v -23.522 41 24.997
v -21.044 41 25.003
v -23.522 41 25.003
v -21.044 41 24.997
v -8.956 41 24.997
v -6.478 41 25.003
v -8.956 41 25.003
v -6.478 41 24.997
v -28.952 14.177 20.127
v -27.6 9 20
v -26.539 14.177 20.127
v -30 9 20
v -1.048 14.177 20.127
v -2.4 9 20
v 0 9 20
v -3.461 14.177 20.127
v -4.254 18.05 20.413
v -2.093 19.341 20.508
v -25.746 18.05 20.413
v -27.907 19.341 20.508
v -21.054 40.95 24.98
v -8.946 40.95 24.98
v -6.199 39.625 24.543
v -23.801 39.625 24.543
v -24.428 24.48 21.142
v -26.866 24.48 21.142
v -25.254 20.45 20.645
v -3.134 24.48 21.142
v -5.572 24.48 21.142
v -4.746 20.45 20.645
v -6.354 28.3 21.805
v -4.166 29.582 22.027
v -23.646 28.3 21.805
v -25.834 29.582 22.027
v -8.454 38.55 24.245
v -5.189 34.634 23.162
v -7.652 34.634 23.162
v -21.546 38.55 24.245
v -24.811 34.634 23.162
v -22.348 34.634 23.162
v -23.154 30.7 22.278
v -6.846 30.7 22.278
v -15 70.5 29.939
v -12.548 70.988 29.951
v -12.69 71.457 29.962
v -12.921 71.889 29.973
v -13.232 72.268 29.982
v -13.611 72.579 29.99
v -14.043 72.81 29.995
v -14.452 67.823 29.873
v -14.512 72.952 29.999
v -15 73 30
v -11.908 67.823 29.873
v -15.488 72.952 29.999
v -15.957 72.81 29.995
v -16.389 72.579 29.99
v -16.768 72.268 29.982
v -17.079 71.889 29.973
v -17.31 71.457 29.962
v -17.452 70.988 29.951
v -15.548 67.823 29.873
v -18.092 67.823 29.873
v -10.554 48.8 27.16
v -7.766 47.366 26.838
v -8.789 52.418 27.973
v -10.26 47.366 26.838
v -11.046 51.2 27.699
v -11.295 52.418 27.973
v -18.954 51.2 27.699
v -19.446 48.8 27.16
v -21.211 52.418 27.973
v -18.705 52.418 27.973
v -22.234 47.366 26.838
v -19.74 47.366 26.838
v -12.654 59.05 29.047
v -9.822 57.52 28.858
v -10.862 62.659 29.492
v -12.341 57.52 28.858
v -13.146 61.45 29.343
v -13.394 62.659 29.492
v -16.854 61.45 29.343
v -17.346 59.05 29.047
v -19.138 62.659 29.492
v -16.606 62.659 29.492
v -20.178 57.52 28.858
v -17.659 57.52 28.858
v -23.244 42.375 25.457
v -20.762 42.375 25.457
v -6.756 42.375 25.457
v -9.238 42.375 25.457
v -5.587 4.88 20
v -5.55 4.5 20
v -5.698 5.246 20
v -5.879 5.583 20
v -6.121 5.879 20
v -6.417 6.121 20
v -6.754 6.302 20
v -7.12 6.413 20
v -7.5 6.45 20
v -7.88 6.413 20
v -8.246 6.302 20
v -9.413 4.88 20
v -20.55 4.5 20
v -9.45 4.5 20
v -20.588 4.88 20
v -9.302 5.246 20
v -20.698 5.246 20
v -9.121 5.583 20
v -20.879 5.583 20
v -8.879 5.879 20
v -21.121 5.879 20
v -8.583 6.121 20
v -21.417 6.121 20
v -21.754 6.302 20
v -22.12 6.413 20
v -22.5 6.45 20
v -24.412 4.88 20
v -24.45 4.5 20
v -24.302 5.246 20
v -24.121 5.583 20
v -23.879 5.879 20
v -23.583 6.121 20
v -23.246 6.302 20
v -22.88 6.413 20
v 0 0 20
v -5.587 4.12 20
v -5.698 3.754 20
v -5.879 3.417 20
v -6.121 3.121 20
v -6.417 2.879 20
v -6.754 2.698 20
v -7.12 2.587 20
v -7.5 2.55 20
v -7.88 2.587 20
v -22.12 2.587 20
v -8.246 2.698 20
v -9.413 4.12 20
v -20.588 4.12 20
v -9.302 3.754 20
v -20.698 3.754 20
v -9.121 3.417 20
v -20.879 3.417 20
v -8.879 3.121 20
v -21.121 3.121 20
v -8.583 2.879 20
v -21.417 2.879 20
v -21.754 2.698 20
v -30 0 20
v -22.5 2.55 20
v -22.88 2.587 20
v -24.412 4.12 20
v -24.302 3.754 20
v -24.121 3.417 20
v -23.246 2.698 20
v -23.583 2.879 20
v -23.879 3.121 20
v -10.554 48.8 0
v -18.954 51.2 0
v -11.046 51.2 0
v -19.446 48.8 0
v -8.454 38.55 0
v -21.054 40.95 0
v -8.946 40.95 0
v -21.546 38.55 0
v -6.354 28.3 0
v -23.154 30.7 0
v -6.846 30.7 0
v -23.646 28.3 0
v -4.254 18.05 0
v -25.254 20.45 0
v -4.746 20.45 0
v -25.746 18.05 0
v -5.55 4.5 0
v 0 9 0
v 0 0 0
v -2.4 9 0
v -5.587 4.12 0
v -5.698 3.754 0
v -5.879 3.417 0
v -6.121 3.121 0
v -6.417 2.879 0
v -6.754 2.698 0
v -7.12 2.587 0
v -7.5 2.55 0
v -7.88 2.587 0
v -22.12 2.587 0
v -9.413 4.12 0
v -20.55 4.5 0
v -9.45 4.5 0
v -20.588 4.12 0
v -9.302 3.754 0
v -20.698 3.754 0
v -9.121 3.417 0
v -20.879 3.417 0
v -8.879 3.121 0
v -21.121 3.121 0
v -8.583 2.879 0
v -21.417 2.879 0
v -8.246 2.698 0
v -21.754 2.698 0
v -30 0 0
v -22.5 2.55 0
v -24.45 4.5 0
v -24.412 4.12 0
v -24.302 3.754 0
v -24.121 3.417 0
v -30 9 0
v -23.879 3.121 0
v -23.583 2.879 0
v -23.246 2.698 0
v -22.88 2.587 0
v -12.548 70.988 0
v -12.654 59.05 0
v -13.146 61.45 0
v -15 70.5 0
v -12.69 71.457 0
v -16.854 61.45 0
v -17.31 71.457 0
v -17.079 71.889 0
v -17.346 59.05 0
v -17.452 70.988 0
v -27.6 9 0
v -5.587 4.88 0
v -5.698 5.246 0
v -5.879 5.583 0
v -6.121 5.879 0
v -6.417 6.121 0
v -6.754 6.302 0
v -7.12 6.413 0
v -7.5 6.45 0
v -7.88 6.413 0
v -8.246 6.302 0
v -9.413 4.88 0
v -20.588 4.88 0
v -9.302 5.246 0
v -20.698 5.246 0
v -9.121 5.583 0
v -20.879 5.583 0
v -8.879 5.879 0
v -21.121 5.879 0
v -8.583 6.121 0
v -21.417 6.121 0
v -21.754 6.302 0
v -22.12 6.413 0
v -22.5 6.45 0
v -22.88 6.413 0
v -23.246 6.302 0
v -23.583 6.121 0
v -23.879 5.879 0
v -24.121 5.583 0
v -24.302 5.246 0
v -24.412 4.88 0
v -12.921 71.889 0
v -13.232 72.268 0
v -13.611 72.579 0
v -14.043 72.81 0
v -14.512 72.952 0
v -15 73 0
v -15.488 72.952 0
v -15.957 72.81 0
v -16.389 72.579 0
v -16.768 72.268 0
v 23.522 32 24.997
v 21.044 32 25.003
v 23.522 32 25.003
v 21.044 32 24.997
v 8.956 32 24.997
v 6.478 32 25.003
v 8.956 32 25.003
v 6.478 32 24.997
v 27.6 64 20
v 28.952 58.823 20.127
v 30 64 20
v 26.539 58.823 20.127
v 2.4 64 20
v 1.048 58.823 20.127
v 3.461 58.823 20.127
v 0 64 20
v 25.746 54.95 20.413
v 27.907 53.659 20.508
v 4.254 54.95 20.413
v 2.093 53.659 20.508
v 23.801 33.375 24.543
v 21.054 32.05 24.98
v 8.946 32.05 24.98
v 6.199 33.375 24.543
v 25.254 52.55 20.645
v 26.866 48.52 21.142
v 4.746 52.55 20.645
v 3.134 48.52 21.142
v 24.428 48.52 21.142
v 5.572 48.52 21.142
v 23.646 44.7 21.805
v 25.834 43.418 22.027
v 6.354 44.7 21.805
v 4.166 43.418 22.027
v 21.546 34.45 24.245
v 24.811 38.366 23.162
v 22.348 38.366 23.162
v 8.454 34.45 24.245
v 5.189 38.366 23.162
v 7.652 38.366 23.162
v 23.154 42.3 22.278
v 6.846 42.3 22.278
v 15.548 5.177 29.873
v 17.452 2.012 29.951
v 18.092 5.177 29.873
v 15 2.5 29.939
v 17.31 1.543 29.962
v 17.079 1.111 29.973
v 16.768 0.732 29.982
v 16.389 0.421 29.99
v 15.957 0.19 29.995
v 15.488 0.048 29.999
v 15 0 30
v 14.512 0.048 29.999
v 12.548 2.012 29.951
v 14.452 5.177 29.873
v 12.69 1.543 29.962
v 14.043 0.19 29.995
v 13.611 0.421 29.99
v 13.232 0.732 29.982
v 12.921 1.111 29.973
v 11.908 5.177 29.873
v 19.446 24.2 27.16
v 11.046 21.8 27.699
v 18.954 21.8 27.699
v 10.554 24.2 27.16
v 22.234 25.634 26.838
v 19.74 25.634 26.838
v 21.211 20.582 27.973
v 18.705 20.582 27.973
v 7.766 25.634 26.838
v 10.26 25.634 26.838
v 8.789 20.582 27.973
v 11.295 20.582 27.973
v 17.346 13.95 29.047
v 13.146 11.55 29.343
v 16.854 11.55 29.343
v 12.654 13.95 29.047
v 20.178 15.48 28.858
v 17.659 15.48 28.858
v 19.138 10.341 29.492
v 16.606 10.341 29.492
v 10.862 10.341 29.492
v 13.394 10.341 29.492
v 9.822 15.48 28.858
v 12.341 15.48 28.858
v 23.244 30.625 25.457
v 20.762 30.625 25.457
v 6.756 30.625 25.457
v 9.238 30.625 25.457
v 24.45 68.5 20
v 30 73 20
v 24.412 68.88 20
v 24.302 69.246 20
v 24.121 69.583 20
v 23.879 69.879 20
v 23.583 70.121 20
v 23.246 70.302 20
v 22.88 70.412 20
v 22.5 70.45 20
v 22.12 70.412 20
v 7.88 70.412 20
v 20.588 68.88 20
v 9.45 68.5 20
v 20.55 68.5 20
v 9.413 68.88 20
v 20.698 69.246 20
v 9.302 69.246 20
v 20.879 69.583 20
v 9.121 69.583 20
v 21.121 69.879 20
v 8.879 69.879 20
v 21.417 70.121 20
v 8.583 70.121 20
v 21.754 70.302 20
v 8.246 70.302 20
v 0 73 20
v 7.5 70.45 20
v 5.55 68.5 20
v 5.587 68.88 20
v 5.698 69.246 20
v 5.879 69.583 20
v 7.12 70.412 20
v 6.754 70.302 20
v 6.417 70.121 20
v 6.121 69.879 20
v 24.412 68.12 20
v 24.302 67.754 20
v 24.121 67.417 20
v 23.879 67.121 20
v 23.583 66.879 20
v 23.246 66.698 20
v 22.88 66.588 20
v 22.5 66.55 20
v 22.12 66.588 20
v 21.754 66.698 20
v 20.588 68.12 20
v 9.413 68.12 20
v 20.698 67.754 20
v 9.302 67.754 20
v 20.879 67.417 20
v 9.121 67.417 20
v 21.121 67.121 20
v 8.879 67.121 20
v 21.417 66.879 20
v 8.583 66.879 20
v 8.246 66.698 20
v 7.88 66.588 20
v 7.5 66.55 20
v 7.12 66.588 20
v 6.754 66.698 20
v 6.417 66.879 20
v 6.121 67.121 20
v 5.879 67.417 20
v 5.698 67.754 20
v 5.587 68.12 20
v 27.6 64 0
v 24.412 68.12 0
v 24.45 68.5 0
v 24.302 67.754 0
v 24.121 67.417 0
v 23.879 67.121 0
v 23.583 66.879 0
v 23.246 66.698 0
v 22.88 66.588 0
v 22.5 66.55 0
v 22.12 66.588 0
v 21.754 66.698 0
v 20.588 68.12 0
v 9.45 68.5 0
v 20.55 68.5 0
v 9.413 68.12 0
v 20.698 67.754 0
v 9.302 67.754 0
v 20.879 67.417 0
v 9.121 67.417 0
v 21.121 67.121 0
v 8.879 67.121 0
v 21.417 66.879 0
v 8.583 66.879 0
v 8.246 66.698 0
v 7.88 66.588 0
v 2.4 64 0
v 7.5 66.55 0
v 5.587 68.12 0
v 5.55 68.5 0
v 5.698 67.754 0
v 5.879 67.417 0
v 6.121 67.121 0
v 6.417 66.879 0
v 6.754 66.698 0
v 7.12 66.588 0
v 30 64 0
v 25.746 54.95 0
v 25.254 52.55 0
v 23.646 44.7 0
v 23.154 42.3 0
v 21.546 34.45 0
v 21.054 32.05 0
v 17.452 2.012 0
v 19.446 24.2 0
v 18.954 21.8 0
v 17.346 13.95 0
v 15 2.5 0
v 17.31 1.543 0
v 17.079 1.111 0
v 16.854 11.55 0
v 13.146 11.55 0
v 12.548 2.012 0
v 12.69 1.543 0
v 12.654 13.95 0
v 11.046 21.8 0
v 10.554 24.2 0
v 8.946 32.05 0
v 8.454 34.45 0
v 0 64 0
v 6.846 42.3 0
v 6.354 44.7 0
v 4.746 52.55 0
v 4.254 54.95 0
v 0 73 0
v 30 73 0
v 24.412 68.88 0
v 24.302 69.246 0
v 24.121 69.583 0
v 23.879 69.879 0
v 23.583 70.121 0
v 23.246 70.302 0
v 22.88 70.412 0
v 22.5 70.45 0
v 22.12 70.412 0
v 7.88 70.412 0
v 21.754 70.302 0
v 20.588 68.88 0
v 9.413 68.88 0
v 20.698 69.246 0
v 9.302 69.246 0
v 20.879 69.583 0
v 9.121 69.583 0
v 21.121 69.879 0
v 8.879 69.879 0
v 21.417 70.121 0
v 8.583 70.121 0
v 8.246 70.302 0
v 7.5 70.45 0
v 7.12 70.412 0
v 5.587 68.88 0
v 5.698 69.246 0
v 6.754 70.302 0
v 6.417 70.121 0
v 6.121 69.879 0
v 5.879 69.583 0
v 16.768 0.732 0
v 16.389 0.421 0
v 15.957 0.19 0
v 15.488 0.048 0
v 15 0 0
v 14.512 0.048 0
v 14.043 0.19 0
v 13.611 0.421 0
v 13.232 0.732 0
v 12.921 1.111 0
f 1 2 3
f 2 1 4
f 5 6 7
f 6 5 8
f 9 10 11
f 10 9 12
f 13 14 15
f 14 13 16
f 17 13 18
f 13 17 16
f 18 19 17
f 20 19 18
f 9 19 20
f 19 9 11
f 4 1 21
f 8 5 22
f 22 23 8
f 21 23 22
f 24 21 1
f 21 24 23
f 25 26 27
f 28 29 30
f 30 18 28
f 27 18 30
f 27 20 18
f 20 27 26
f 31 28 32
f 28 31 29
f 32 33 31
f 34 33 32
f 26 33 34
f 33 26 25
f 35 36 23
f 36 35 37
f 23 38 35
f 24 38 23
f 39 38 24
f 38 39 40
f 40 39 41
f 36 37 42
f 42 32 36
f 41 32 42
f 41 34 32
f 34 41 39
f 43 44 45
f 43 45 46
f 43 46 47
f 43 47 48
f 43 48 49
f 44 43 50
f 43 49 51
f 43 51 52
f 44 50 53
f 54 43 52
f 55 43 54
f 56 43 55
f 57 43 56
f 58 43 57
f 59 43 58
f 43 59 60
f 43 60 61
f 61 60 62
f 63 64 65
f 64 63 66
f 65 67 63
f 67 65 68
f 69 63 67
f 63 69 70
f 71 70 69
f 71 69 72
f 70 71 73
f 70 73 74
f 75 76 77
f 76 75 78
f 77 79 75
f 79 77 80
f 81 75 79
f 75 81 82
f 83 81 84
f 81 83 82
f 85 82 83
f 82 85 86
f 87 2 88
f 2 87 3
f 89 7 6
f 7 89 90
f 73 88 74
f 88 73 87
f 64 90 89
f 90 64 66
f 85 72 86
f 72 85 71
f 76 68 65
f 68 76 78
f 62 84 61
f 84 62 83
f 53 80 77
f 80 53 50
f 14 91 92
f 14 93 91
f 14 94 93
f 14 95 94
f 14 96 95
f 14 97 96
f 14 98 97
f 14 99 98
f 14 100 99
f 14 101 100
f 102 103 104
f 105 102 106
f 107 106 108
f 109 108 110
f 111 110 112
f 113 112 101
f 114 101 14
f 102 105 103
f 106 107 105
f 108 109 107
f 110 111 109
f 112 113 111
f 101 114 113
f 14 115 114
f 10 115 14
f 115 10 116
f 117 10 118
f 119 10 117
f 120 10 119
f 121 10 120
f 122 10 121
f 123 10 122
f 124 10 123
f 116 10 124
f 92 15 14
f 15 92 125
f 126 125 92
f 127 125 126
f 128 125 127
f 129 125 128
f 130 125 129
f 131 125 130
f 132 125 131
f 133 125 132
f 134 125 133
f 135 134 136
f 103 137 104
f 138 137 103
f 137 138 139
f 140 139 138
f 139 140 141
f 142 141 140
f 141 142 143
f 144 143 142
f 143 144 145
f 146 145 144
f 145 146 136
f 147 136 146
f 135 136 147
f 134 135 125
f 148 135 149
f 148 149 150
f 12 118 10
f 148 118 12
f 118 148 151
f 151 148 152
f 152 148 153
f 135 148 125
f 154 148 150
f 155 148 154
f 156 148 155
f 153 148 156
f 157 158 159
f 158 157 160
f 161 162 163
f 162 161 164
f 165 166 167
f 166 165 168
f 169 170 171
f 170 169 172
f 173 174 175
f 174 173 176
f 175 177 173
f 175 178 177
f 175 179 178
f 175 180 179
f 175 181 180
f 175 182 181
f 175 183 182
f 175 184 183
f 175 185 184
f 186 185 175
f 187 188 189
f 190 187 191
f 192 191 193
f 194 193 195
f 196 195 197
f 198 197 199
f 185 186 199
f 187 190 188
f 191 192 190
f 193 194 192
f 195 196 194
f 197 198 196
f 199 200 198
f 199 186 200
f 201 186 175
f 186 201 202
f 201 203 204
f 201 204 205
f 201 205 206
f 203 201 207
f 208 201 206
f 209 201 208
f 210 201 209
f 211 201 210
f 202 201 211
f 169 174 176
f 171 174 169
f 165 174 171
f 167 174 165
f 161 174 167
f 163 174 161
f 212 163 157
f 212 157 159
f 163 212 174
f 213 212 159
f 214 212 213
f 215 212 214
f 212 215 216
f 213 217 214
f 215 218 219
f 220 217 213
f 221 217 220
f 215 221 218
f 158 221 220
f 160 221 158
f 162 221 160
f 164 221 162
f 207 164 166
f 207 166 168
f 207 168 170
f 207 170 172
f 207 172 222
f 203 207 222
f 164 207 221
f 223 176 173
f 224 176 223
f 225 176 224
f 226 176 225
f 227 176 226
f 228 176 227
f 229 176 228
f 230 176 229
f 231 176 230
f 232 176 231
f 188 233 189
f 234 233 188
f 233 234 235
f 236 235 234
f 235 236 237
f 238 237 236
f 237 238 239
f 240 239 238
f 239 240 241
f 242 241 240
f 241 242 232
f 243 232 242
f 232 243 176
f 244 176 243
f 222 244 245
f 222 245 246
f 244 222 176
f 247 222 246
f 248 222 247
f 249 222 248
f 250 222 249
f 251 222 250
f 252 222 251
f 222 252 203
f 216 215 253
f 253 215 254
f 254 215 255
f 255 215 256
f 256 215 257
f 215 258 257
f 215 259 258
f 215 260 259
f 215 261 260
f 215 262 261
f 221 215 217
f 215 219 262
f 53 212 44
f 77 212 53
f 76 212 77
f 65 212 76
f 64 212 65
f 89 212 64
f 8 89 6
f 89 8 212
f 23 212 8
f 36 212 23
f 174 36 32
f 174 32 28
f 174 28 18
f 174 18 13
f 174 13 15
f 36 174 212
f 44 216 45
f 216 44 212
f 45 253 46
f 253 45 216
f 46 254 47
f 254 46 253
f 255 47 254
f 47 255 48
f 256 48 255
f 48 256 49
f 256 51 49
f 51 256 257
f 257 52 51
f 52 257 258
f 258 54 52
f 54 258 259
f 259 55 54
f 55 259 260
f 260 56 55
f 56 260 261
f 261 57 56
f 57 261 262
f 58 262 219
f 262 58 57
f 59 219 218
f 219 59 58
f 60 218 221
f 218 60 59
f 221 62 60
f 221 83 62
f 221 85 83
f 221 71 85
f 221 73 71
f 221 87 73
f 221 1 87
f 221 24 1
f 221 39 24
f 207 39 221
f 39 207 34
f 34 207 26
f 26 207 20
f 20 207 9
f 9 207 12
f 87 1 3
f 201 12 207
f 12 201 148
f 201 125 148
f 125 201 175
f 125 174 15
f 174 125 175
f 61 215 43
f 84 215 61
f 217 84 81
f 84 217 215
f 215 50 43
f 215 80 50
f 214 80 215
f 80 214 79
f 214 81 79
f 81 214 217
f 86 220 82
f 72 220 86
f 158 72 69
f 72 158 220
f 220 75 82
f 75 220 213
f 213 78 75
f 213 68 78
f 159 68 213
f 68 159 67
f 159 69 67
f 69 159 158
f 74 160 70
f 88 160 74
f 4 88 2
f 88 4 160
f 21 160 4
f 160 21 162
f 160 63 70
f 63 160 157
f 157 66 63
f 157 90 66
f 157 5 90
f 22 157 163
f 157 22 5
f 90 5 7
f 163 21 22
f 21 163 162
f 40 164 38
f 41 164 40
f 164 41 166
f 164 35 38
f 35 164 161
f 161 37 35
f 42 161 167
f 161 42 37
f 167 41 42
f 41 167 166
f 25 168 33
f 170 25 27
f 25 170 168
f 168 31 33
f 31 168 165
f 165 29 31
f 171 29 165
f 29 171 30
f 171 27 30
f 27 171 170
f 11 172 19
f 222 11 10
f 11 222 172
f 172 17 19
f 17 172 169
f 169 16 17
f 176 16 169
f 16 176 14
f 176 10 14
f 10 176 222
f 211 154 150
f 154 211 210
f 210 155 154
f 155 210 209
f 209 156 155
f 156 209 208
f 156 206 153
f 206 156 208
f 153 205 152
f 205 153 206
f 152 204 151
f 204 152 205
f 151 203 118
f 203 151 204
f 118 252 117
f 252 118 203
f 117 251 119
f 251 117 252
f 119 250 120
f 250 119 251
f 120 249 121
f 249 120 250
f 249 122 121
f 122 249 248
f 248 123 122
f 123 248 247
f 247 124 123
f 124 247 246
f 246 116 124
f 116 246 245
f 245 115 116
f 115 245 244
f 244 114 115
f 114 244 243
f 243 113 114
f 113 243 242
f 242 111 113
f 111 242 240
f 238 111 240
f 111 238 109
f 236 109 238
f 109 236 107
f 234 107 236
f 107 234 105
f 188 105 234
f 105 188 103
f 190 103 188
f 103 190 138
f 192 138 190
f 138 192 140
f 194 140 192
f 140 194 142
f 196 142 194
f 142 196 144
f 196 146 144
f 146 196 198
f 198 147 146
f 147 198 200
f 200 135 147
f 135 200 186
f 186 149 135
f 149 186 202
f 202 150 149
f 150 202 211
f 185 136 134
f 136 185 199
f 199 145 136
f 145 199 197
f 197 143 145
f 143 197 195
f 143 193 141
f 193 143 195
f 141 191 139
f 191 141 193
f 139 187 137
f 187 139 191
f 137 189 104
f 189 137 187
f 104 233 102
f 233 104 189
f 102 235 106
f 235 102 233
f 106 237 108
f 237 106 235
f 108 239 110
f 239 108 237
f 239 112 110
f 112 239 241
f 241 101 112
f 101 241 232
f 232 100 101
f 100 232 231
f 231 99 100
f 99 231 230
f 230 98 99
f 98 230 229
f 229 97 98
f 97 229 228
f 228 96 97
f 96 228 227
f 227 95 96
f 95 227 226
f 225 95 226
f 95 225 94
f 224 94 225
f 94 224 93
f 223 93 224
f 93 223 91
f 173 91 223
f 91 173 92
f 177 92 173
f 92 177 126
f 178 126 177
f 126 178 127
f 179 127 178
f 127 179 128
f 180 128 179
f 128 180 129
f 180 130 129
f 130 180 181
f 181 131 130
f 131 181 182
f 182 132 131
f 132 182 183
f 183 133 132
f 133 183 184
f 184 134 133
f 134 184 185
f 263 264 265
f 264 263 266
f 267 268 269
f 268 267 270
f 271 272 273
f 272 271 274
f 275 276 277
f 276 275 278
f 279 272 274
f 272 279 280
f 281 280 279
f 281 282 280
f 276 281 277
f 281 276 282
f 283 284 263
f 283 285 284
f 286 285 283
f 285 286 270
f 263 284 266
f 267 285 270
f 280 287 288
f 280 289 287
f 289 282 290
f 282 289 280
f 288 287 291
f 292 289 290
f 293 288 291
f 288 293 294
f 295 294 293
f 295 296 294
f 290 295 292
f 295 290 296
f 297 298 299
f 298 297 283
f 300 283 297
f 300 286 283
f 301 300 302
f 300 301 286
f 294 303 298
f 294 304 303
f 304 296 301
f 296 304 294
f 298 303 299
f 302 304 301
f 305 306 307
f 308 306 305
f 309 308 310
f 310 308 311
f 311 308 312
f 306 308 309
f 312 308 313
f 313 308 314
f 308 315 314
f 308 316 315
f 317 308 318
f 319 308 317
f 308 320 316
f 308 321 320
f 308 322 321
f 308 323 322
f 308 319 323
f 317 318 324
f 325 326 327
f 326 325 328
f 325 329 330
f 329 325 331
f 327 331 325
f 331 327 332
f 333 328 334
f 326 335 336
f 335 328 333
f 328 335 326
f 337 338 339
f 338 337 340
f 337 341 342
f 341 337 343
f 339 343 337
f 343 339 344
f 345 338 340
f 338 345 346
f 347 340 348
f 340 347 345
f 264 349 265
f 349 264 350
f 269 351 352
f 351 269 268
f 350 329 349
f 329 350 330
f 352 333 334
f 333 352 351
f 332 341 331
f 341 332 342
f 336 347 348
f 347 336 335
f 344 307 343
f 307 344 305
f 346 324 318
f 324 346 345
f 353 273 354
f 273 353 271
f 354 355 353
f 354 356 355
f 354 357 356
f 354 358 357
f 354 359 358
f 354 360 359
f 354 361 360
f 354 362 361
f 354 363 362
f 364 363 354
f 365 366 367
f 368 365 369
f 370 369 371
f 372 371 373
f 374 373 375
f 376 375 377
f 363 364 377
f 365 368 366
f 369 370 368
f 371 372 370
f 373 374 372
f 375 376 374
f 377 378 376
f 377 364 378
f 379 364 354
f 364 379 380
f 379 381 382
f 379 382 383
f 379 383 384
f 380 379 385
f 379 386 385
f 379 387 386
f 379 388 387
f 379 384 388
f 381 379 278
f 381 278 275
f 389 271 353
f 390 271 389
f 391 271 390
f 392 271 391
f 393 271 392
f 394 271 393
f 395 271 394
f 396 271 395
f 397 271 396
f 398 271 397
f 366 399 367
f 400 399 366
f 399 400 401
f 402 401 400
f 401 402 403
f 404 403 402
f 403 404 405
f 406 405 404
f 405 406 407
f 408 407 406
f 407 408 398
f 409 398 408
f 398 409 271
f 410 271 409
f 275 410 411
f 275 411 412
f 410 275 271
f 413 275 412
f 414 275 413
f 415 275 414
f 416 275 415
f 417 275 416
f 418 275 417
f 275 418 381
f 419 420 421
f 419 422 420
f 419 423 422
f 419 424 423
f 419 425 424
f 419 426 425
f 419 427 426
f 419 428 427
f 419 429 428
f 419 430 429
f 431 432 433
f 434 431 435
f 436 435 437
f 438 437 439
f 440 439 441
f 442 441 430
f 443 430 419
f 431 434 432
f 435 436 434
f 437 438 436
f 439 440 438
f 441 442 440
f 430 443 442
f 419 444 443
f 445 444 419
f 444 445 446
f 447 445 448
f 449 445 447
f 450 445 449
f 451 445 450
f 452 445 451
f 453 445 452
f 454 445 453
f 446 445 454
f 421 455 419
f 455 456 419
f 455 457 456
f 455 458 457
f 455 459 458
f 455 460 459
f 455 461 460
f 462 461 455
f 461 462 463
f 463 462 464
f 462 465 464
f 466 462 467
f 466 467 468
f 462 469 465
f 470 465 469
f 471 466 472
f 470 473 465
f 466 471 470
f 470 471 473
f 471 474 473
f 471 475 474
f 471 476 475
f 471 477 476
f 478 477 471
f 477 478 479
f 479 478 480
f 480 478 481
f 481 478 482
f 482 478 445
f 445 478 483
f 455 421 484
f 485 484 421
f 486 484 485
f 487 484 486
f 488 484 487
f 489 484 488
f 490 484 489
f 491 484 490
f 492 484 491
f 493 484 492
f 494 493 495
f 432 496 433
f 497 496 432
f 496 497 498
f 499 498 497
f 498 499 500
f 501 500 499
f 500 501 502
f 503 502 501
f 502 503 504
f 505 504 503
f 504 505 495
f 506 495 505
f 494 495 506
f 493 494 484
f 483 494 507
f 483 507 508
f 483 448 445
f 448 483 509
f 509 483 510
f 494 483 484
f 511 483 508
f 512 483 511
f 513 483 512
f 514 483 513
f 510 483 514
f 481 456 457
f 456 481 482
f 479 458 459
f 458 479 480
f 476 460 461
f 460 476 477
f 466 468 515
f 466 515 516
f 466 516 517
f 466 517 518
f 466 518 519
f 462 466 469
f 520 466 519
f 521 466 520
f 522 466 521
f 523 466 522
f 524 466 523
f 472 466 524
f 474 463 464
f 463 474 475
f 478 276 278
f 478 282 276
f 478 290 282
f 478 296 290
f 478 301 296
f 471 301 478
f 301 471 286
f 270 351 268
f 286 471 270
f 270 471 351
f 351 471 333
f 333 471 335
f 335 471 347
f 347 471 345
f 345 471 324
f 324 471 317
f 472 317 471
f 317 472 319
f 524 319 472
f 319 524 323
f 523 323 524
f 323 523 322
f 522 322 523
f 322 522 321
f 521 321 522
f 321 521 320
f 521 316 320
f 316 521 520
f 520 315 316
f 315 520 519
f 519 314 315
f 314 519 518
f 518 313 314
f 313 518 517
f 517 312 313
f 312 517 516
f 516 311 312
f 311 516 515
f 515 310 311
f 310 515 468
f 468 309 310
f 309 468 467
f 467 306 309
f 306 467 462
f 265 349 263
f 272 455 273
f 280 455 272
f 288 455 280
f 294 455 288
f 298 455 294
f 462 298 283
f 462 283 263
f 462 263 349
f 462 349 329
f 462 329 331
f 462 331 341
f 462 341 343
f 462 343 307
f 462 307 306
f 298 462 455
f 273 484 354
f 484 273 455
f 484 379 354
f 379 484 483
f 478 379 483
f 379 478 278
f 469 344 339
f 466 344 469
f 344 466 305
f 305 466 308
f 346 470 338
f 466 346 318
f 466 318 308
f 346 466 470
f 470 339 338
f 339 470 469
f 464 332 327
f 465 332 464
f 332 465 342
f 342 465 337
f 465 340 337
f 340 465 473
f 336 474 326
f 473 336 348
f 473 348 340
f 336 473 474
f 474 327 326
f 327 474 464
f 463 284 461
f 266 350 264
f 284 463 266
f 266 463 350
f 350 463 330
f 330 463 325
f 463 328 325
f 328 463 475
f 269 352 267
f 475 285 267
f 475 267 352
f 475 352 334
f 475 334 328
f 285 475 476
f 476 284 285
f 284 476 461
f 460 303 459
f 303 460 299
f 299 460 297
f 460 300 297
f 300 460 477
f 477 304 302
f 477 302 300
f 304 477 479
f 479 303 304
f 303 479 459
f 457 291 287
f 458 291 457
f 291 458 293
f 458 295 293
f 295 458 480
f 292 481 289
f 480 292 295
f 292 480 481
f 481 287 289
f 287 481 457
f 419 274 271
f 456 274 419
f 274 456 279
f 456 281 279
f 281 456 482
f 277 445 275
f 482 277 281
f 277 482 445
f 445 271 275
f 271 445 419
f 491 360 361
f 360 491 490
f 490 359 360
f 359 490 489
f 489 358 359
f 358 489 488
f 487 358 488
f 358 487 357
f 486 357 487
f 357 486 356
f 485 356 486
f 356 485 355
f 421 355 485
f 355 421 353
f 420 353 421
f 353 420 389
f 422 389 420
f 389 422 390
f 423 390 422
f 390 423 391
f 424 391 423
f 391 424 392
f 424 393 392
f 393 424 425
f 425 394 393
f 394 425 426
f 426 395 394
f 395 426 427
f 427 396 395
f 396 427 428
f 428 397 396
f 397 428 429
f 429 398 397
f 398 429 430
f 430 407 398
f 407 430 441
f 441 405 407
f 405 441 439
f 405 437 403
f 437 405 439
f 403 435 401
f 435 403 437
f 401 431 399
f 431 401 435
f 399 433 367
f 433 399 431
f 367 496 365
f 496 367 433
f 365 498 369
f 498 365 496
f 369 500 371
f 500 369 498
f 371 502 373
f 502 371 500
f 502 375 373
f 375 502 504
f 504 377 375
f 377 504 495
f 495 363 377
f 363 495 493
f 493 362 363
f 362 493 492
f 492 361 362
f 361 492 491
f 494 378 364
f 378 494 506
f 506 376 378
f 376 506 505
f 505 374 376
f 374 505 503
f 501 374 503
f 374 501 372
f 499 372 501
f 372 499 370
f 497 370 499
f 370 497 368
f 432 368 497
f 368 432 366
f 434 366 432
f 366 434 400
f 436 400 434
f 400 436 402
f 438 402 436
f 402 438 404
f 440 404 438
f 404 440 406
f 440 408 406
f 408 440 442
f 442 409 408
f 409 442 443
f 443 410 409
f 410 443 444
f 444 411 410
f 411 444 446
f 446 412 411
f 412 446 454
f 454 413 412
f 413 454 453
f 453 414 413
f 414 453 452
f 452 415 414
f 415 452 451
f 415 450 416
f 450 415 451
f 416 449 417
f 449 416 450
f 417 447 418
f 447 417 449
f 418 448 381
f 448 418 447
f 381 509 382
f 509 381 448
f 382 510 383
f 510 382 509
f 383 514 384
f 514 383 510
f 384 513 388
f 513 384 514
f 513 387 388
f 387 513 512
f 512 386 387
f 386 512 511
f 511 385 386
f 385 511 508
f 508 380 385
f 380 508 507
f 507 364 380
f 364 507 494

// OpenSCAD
// This work is licensed under the Creative Commons Attribution-NonCommercial-ShareAlike 4.0 International License. To view a copy of this license, visit http://creativecommons.org/licenses/by-nc-sa/4.0/.

width=30;
length=73;
thick=20;
t=0.4*6;
socket_height=9;
hole_dia=3.9;
hole_dist=15;
top_dia=5;
steps=5;
extra = thick/2;

module finger() {
    difference() {
        linear_extrude(height=thick+extra) difference() {
            hull() {
                t(-width/2, 0, 0) square([width, socket_height]);
                t(0, length-top_dia/2, 0) circle(d=top_dia, $fn=32);
            }
            difference() {
                polygon([[width/2-t, socket_height],
                         [-width/2+t, socket_height],
                         [0, length-top_dia/2]]);
                _start=socket_height;
                _end=length-top_dia/2;
                _step_size=(_end-_start)/(steps+1);
                for(i = [1 : steps]) {
                    t(-width/2, -t/2 + _start + i*_step_size, 0) square([width, t]);
                }
            }
            t(-hole_dist/2, socket_height/2, 0)circle(d=hole_dia, $fn=32);
            t( hole_dist/2, socket_height/2, 0)circle(d=hole_dia, $fn=32);
        }
        if(extra > 0) {
            rad=105.5;
            _eff = length - socket_height;
            union() {
                t(-width/2-1, -1, thick)cube([width+2, socket_height+1, extra]);
                intersection() {
                    t(-width/2, socket_height, thick) cube([width, _eff/2, extra]);
                    t(0, socket_height, thick + rad)r(0, 90, 0)cylinder(r=rad,h=width*1.1, center=true, $fn=128);
                }
                difference() {
                    t(-width/2, socket_height + _eff/2, thick) cube([width, _eff/2, extra]);
                    t(0, length, thick+extra - rad)r(0, 90, 0)cylinder(r=rad,h=width*1.1, center=true, $fn=128);
                }
            }
        }
    }
}

t(-width/2, 0, 0) finger();
t(width/2, length, 0)r(0, 0, 180) finger();

module r(x, y, z) {
    rotate([x, y, z]) children();
}
module t(x, y, z) {
    translate([x, y, z]) children();
}
